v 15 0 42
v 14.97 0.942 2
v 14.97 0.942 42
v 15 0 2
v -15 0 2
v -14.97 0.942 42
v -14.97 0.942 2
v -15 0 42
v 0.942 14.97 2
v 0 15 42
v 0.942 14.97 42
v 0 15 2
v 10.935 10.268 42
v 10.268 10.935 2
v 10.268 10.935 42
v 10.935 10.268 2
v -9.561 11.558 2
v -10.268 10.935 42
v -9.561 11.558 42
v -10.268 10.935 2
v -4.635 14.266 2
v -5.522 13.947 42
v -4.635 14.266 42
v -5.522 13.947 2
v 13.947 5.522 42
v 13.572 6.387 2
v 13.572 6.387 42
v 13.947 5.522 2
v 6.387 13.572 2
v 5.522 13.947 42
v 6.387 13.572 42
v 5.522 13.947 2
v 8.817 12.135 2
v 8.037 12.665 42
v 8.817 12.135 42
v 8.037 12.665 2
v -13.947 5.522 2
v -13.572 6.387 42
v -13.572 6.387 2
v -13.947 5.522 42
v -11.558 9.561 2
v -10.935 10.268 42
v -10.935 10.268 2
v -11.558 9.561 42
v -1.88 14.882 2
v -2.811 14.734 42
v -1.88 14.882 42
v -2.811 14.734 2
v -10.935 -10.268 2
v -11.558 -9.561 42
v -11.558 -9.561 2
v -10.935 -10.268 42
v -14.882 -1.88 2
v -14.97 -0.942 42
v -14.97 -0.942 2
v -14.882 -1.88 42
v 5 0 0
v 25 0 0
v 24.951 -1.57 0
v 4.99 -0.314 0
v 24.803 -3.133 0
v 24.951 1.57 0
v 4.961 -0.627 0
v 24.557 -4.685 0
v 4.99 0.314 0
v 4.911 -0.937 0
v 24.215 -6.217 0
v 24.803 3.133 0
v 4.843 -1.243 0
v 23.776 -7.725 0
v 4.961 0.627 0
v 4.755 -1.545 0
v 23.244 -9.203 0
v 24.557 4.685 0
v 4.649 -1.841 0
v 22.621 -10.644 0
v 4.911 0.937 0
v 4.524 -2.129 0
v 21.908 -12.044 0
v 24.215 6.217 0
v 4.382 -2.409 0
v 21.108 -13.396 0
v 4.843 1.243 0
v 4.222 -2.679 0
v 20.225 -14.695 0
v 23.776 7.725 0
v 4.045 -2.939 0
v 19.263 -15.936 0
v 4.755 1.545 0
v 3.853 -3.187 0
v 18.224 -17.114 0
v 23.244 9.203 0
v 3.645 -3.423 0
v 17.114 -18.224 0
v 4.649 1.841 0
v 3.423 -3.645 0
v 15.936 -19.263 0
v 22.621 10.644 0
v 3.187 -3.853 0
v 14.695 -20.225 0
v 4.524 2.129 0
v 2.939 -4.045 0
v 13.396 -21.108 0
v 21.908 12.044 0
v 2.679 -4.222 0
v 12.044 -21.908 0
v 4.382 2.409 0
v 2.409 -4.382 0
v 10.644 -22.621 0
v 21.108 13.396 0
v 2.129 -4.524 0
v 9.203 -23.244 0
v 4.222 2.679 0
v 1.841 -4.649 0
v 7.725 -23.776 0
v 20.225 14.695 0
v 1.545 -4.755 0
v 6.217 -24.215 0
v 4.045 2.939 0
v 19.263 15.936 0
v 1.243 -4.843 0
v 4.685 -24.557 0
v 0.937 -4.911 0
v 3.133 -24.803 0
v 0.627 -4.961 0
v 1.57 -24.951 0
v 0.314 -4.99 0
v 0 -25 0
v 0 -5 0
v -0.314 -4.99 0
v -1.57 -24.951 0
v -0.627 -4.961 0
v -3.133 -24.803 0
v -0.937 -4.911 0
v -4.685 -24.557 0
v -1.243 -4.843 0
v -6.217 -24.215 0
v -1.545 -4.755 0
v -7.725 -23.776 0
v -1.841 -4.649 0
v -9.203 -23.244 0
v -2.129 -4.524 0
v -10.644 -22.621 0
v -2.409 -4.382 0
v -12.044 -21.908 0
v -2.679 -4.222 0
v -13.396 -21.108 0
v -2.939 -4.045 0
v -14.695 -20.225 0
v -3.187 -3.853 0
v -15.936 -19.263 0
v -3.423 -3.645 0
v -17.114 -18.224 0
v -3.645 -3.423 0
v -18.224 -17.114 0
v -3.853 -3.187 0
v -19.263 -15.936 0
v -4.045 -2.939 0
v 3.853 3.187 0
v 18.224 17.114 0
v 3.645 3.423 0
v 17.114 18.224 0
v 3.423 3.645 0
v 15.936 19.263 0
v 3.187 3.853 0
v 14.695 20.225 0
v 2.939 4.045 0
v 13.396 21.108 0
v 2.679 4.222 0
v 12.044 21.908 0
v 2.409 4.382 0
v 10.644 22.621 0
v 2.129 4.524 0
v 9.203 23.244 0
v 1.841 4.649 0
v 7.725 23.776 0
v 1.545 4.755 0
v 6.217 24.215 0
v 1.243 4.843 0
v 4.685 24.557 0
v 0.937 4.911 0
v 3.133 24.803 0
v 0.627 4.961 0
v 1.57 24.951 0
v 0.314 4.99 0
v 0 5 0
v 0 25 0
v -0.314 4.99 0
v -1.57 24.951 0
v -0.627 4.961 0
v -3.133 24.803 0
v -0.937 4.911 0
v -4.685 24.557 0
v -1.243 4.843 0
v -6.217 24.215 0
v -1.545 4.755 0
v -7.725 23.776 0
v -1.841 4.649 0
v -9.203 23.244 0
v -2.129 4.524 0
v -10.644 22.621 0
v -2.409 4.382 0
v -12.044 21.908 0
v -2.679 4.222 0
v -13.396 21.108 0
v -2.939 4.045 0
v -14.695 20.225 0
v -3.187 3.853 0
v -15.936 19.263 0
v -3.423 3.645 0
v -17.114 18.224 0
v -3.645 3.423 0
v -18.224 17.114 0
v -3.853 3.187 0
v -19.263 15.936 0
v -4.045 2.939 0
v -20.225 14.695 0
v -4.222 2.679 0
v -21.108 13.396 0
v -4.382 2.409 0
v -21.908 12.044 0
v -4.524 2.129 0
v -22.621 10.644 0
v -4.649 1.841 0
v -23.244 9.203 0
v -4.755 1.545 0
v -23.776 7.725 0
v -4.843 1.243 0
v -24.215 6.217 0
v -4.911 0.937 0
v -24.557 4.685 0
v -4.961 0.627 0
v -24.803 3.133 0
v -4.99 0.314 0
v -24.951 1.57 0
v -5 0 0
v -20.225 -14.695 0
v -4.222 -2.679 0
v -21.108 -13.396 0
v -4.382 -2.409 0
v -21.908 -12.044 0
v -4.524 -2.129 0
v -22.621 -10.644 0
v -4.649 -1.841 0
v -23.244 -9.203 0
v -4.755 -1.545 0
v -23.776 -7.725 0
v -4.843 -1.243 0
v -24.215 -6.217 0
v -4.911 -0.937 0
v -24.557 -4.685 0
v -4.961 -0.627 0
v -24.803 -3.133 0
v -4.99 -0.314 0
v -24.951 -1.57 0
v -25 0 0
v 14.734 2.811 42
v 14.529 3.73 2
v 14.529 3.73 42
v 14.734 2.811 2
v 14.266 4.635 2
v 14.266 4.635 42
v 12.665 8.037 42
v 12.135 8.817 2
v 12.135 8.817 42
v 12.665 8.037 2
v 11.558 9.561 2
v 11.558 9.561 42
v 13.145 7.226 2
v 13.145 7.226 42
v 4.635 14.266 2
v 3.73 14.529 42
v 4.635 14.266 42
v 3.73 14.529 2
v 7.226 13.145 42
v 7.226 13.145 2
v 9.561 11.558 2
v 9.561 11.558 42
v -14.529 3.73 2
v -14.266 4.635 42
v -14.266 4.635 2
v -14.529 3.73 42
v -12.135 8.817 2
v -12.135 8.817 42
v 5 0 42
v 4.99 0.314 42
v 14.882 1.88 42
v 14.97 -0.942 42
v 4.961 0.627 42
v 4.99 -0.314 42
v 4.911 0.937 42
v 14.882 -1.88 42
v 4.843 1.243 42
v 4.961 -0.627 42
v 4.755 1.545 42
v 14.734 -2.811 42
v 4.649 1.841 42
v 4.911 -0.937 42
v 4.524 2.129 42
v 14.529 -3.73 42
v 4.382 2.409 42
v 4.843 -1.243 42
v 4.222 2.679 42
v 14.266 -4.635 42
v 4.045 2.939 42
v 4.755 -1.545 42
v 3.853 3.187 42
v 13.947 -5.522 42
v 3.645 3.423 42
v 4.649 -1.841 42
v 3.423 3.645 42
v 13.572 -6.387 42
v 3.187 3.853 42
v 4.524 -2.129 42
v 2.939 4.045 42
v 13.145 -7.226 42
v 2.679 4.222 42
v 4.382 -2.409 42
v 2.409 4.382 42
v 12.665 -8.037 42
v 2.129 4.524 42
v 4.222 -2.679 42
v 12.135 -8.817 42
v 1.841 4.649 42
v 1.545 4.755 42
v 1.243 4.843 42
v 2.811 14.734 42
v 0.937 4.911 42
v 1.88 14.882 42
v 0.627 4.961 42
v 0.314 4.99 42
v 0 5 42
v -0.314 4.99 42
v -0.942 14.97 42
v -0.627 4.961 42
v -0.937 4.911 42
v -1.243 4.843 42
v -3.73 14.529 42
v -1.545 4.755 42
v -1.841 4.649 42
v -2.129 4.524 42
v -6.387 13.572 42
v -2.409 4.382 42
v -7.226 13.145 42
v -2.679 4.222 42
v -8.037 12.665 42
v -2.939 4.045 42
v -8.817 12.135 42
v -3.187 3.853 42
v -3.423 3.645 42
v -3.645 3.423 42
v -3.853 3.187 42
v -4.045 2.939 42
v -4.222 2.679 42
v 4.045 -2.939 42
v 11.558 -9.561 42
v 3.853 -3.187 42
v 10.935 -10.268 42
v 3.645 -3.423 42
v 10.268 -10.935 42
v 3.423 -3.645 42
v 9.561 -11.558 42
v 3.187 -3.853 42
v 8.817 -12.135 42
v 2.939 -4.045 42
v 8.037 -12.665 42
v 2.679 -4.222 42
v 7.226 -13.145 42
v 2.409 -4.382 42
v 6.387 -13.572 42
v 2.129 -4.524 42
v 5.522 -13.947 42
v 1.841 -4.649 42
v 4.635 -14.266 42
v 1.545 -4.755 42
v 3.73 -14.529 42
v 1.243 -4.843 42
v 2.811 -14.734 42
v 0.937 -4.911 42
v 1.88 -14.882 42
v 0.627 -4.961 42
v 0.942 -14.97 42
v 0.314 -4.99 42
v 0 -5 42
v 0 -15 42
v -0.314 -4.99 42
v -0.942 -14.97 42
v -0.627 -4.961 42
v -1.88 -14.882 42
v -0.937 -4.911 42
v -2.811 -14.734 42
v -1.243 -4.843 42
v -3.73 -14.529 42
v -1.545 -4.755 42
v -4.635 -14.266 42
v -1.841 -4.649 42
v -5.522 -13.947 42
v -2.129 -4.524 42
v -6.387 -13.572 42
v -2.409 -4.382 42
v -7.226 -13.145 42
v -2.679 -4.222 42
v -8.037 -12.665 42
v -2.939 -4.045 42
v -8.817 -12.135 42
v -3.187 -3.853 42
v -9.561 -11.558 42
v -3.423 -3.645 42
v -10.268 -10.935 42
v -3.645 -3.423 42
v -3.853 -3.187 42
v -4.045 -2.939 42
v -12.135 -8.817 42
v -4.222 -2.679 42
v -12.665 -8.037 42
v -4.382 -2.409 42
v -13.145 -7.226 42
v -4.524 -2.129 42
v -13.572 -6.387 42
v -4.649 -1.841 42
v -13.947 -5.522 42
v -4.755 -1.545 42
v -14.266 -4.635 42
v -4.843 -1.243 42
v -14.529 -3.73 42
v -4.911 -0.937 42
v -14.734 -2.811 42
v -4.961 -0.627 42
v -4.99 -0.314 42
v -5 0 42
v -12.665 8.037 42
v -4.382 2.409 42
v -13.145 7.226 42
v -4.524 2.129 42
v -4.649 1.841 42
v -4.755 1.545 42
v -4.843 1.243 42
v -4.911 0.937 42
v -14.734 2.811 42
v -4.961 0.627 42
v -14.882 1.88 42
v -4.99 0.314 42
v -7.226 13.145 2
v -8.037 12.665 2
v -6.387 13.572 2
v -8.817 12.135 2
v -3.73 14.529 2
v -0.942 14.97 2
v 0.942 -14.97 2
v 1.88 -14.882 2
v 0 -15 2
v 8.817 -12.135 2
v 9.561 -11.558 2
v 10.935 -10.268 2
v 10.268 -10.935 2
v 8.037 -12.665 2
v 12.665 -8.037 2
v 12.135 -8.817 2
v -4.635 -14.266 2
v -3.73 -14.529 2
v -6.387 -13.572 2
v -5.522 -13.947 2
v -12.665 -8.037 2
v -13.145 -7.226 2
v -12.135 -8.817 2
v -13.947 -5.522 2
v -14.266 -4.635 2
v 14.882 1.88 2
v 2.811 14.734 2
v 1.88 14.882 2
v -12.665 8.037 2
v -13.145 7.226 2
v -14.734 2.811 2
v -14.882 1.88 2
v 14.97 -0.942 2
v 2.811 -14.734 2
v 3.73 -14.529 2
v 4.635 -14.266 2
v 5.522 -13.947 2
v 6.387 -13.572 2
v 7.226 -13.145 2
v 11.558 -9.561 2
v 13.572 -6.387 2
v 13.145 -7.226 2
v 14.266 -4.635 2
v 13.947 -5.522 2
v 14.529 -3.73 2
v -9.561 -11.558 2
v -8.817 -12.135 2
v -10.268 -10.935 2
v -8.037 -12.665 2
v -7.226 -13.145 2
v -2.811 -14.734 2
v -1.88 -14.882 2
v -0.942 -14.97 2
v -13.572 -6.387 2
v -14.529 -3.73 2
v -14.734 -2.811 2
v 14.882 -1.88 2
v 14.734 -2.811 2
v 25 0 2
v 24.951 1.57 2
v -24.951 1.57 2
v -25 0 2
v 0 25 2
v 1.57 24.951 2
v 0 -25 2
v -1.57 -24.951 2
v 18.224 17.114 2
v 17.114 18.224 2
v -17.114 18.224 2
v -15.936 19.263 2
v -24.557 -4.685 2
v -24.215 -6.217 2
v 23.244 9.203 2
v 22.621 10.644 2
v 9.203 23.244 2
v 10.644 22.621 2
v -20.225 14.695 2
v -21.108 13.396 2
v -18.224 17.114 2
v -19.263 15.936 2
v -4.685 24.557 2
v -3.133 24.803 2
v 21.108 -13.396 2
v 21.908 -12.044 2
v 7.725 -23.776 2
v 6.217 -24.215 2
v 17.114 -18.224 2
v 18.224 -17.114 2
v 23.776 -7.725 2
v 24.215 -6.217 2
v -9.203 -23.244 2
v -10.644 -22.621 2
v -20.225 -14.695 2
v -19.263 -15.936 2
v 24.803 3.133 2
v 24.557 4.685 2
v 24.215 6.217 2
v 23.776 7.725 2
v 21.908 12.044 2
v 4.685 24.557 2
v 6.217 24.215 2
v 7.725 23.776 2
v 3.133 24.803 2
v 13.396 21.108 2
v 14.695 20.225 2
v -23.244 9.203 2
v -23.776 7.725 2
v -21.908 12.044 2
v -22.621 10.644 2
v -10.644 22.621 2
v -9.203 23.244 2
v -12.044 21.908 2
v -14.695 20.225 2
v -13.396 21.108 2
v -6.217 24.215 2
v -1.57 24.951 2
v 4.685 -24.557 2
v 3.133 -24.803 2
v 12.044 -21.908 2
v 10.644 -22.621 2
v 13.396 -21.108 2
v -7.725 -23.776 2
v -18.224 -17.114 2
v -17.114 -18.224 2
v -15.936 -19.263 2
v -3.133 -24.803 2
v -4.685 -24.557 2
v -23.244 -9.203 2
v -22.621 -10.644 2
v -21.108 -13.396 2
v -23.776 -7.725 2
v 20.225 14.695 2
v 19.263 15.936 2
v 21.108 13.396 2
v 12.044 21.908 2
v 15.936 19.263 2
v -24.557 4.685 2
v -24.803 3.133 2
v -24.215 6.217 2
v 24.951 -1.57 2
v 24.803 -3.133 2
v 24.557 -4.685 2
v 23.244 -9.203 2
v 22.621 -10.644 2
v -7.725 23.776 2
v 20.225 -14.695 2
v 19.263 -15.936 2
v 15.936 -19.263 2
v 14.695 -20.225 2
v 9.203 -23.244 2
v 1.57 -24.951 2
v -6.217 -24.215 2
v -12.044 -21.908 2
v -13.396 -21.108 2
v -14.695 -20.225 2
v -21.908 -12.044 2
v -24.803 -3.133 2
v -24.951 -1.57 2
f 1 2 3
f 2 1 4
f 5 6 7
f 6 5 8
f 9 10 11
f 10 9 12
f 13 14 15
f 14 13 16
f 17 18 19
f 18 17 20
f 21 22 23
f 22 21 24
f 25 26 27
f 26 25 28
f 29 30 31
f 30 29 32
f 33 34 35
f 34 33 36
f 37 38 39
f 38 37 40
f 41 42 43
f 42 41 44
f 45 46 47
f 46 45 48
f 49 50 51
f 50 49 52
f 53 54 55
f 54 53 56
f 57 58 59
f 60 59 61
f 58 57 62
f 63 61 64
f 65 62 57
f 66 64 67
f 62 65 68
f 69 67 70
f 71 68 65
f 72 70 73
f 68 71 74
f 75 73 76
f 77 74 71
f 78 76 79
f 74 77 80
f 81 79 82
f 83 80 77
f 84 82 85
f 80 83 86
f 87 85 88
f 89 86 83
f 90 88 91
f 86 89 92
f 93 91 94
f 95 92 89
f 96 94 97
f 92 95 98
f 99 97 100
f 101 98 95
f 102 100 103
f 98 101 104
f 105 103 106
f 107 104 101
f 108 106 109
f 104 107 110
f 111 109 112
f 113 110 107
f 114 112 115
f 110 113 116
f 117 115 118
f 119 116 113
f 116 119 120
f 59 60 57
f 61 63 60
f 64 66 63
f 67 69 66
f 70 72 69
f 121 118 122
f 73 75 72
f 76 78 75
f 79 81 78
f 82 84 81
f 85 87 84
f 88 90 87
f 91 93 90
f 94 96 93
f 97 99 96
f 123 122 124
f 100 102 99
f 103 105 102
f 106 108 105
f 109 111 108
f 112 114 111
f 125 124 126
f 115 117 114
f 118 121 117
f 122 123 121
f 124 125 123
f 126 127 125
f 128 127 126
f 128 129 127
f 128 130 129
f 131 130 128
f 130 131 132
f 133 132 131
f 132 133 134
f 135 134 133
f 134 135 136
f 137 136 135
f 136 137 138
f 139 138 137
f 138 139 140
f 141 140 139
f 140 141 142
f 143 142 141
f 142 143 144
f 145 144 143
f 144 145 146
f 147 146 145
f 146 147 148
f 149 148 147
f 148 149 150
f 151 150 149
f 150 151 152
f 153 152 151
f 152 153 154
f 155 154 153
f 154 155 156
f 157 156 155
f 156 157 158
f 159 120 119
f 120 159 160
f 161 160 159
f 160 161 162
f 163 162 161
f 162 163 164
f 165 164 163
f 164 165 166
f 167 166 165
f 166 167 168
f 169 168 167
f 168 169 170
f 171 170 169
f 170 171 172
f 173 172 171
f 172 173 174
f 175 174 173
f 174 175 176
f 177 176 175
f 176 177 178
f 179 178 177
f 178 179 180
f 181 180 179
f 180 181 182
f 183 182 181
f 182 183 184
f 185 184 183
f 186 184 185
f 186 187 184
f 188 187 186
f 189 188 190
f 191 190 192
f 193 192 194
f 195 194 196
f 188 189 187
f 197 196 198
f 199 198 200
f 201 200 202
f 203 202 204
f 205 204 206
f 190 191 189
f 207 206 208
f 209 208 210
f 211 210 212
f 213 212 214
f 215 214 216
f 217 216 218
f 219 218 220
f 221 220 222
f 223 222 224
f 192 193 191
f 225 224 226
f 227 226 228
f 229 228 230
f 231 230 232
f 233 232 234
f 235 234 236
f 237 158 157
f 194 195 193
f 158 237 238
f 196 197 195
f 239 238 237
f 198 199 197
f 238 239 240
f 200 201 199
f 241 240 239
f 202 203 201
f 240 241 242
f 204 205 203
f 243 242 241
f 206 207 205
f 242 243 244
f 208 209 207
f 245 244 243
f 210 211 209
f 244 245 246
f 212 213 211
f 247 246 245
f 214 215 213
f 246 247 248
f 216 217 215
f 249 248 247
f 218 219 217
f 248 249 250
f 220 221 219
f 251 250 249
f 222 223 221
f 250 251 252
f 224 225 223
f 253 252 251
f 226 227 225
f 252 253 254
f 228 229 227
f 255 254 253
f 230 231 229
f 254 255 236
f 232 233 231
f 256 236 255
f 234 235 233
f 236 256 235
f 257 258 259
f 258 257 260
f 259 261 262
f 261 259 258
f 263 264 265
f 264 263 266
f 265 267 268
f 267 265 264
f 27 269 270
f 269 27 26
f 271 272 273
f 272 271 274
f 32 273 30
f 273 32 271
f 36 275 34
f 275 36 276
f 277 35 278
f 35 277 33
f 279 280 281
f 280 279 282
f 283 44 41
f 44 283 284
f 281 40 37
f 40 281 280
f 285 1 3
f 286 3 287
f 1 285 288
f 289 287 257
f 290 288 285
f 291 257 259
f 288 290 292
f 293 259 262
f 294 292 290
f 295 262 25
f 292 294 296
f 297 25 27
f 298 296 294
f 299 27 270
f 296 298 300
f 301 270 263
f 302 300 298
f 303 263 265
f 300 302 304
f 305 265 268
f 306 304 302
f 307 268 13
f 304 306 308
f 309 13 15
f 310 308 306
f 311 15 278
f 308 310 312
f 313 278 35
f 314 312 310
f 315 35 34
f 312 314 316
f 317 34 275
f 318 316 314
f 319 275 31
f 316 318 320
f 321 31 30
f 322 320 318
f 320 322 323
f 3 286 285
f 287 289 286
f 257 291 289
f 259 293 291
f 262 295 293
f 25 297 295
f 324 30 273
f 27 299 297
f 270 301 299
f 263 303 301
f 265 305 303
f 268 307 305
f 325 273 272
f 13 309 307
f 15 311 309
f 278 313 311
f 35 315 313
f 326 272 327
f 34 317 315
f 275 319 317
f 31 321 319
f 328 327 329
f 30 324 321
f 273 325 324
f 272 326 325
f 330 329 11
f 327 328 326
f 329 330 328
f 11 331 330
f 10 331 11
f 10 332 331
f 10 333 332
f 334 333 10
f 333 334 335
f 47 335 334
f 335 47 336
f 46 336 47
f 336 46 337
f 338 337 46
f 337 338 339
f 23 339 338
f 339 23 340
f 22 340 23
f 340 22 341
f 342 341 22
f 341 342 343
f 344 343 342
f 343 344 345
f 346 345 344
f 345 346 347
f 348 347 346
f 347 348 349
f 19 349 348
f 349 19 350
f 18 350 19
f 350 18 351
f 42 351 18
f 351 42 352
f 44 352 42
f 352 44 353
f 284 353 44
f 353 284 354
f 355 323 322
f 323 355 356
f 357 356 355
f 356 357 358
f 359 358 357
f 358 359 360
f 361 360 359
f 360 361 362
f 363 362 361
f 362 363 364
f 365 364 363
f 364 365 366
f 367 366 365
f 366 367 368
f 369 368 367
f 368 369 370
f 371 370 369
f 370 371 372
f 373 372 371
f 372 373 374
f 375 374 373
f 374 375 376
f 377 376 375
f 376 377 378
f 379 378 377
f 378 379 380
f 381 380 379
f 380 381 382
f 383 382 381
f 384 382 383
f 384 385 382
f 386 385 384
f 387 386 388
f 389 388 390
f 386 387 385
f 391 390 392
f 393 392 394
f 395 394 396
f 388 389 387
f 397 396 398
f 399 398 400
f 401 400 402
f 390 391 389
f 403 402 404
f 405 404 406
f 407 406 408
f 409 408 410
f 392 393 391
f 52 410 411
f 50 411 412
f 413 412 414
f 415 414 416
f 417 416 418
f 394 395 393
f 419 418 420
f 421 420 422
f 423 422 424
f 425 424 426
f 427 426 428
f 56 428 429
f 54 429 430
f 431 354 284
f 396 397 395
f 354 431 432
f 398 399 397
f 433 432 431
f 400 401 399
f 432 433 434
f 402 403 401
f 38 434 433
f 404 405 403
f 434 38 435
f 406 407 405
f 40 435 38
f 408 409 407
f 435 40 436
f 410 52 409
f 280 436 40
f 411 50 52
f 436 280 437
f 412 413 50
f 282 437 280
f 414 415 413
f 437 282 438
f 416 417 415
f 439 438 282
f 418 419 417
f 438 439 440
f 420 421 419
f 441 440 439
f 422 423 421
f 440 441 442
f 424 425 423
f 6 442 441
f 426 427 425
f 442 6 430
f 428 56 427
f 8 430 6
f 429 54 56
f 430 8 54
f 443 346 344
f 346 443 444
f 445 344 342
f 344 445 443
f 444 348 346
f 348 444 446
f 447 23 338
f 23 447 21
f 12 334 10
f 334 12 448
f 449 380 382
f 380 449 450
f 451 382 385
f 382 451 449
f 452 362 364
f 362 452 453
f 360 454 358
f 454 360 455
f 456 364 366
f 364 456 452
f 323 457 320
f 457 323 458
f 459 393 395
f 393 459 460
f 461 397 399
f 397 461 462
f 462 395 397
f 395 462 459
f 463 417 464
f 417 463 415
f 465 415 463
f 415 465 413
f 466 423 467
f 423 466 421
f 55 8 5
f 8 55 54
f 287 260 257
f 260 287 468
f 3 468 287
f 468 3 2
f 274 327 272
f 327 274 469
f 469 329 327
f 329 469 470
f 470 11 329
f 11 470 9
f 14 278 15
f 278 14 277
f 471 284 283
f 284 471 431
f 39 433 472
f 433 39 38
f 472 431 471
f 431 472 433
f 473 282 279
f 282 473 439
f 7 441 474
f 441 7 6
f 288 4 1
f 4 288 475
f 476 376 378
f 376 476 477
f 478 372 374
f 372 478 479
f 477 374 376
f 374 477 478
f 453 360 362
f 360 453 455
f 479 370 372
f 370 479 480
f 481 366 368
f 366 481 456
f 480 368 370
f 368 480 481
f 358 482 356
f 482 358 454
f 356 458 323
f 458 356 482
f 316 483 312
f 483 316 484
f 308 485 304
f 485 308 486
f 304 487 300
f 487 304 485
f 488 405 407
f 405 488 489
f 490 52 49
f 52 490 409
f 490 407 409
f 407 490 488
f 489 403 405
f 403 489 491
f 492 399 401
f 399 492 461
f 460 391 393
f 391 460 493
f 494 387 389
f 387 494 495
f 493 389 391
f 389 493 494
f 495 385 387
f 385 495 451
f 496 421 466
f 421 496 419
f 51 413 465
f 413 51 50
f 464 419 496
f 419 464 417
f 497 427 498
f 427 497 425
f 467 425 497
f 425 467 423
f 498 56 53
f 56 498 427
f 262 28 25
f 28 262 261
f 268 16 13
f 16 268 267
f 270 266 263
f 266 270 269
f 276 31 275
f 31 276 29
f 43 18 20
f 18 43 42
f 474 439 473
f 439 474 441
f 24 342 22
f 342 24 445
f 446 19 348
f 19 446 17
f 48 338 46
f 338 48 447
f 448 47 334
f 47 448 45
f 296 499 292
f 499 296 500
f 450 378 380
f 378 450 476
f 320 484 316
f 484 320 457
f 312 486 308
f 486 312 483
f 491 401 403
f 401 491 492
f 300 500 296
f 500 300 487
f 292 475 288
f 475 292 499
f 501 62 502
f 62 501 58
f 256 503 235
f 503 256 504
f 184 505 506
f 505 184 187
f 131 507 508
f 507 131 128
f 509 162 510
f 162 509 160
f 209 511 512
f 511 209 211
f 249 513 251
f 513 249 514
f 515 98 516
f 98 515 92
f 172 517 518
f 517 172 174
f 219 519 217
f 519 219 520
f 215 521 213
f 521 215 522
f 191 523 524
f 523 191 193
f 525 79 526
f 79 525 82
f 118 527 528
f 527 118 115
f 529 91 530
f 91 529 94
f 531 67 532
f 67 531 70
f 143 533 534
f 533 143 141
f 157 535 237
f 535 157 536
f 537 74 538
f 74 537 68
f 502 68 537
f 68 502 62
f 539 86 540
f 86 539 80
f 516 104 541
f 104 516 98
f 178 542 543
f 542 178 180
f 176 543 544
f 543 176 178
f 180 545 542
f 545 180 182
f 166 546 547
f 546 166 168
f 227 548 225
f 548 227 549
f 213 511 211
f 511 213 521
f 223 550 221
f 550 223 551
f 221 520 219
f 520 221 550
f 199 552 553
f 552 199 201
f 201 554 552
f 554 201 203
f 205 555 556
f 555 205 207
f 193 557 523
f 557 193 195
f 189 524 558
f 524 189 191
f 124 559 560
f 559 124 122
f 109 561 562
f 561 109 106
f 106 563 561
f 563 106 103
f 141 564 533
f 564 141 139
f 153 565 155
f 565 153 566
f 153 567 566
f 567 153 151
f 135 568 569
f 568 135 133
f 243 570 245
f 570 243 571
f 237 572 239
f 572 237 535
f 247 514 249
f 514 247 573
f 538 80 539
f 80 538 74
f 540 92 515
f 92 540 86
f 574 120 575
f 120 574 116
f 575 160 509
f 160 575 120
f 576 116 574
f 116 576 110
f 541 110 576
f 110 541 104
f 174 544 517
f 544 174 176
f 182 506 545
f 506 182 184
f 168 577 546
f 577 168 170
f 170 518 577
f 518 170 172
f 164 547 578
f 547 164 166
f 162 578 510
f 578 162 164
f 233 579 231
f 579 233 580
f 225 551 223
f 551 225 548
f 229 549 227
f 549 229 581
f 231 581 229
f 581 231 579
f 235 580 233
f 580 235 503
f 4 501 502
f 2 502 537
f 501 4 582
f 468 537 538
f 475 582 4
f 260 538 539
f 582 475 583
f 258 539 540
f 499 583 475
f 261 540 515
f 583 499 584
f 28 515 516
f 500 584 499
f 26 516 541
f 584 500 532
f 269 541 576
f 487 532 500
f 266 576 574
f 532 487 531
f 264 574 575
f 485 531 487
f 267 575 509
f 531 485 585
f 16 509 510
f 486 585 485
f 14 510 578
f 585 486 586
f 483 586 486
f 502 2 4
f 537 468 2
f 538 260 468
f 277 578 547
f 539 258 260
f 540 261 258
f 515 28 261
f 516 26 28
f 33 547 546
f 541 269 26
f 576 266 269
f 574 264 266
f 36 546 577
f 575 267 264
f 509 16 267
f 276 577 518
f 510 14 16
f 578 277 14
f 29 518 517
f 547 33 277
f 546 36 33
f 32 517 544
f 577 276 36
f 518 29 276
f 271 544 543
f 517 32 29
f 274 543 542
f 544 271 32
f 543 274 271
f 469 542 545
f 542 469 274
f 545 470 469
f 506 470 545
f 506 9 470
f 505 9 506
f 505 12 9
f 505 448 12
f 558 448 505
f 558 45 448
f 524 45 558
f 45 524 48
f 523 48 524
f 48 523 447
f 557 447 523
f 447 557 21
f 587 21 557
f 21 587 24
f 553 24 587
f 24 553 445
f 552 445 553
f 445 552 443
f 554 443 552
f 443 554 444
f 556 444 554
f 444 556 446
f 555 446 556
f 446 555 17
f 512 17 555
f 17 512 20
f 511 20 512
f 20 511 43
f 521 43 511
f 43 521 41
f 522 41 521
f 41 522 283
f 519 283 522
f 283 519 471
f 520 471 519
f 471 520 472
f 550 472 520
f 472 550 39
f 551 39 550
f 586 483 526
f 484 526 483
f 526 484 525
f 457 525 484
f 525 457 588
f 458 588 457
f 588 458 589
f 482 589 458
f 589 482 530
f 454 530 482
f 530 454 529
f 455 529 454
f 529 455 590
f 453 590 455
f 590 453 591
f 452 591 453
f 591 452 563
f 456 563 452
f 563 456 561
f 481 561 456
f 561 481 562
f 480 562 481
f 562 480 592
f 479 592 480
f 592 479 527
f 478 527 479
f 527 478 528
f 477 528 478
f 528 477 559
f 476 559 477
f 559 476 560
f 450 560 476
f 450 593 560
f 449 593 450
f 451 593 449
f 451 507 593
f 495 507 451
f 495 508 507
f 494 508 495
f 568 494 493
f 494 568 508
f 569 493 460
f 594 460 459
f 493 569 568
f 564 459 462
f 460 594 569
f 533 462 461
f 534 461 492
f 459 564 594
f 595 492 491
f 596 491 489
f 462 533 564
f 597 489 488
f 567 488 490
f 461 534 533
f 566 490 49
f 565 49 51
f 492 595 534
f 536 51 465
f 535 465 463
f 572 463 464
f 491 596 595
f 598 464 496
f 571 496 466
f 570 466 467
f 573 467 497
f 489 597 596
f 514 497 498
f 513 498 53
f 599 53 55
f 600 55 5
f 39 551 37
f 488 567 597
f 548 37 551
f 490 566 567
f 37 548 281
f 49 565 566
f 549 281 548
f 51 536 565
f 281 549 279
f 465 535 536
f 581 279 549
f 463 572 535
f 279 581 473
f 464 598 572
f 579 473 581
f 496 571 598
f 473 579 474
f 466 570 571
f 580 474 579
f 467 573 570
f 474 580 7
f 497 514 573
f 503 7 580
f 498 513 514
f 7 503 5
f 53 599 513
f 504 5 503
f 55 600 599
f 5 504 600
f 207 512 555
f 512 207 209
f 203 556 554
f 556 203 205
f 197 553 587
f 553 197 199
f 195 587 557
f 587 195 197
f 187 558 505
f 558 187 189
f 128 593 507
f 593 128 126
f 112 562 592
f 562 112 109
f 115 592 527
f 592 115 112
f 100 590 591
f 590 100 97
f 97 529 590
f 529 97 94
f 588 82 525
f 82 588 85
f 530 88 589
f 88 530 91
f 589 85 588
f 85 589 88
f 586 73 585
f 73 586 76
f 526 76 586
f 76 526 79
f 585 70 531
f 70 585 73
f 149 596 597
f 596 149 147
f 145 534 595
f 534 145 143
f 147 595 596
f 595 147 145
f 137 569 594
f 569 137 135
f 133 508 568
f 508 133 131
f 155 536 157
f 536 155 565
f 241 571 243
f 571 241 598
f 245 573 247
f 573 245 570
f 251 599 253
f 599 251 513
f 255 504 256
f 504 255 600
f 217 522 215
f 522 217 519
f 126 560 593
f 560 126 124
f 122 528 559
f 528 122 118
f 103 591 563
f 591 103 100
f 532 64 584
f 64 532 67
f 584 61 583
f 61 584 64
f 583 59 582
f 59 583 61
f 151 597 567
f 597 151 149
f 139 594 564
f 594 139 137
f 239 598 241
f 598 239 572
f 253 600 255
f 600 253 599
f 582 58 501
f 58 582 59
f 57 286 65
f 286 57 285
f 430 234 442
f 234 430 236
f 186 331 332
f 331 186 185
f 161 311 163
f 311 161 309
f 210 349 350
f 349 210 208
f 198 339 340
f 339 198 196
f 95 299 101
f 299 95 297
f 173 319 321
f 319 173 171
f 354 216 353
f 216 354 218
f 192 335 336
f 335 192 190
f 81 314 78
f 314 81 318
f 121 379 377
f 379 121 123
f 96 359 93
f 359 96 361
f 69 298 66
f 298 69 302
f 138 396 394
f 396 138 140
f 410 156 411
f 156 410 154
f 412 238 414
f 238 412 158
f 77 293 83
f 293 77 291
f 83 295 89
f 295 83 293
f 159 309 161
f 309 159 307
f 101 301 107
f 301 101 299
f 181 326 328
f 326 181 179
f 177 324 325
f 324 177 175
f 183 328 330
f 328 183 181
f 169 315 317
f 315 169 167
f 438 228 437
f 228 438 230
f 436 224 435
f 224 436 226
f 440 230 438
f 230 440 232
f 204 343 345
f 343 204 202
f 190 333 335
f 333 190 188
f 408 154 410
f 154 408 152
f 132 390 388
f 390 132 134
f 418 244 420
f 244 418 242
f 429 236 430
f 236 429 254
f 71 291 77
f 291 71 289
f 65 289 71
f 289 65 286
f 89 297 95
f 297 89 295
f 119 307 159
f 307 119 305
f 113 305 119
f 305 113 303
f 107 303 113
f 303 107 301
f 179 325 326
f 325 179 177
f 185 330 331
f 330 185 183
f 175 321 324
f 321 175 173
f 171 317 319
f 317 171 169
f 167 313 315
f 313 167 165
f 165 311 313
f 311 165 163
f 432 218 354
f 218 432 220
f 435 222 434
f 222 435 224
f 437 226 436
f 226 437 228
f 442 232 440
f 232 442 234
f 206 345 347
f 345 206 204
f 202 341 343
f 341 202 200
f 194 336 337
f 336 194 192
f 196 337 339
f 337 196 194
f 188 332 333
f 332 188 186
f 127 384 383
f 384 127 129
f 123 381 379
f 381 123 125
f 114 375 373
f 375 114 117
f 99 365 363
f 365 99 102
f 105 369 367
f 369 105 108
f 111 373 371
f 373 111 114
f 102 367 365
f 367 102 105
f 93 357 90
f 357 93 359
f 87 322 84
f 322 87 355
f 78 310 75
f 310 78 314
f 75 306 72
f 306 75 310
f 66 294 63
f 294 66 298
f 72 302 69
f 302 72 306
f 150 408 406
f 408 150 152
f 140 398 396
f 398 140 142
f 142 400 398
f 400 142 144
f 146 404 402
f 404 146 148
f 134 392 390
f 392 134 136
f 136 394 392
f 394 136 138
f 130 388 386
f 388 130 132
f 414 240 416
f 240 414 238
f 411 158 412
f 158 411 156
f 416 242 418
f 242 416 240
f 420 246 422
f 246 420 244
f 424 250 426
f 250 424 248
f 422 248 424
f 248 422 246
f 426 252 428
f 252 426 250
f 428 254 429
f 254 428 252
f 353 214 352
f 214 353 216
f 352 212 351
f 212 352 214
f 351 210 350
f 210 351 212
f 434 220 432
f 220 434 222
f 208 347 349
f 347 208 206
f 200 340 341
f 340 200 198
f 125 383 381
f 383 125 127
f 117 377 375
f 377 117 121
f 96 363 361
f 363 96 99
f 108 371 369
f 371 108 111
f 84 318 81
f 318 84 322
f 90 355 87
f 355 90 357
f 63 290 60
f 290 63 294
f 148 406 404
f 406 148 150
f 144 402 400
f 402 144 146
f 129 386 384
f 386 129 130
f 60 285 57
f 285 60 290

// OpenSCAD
$fn=100;

difference()
{
    union()
    {
        cylinder(r=15, h=42);
        cylinder(r=25, h=2);
    }
    cylinder(r=5, h=42);
}
